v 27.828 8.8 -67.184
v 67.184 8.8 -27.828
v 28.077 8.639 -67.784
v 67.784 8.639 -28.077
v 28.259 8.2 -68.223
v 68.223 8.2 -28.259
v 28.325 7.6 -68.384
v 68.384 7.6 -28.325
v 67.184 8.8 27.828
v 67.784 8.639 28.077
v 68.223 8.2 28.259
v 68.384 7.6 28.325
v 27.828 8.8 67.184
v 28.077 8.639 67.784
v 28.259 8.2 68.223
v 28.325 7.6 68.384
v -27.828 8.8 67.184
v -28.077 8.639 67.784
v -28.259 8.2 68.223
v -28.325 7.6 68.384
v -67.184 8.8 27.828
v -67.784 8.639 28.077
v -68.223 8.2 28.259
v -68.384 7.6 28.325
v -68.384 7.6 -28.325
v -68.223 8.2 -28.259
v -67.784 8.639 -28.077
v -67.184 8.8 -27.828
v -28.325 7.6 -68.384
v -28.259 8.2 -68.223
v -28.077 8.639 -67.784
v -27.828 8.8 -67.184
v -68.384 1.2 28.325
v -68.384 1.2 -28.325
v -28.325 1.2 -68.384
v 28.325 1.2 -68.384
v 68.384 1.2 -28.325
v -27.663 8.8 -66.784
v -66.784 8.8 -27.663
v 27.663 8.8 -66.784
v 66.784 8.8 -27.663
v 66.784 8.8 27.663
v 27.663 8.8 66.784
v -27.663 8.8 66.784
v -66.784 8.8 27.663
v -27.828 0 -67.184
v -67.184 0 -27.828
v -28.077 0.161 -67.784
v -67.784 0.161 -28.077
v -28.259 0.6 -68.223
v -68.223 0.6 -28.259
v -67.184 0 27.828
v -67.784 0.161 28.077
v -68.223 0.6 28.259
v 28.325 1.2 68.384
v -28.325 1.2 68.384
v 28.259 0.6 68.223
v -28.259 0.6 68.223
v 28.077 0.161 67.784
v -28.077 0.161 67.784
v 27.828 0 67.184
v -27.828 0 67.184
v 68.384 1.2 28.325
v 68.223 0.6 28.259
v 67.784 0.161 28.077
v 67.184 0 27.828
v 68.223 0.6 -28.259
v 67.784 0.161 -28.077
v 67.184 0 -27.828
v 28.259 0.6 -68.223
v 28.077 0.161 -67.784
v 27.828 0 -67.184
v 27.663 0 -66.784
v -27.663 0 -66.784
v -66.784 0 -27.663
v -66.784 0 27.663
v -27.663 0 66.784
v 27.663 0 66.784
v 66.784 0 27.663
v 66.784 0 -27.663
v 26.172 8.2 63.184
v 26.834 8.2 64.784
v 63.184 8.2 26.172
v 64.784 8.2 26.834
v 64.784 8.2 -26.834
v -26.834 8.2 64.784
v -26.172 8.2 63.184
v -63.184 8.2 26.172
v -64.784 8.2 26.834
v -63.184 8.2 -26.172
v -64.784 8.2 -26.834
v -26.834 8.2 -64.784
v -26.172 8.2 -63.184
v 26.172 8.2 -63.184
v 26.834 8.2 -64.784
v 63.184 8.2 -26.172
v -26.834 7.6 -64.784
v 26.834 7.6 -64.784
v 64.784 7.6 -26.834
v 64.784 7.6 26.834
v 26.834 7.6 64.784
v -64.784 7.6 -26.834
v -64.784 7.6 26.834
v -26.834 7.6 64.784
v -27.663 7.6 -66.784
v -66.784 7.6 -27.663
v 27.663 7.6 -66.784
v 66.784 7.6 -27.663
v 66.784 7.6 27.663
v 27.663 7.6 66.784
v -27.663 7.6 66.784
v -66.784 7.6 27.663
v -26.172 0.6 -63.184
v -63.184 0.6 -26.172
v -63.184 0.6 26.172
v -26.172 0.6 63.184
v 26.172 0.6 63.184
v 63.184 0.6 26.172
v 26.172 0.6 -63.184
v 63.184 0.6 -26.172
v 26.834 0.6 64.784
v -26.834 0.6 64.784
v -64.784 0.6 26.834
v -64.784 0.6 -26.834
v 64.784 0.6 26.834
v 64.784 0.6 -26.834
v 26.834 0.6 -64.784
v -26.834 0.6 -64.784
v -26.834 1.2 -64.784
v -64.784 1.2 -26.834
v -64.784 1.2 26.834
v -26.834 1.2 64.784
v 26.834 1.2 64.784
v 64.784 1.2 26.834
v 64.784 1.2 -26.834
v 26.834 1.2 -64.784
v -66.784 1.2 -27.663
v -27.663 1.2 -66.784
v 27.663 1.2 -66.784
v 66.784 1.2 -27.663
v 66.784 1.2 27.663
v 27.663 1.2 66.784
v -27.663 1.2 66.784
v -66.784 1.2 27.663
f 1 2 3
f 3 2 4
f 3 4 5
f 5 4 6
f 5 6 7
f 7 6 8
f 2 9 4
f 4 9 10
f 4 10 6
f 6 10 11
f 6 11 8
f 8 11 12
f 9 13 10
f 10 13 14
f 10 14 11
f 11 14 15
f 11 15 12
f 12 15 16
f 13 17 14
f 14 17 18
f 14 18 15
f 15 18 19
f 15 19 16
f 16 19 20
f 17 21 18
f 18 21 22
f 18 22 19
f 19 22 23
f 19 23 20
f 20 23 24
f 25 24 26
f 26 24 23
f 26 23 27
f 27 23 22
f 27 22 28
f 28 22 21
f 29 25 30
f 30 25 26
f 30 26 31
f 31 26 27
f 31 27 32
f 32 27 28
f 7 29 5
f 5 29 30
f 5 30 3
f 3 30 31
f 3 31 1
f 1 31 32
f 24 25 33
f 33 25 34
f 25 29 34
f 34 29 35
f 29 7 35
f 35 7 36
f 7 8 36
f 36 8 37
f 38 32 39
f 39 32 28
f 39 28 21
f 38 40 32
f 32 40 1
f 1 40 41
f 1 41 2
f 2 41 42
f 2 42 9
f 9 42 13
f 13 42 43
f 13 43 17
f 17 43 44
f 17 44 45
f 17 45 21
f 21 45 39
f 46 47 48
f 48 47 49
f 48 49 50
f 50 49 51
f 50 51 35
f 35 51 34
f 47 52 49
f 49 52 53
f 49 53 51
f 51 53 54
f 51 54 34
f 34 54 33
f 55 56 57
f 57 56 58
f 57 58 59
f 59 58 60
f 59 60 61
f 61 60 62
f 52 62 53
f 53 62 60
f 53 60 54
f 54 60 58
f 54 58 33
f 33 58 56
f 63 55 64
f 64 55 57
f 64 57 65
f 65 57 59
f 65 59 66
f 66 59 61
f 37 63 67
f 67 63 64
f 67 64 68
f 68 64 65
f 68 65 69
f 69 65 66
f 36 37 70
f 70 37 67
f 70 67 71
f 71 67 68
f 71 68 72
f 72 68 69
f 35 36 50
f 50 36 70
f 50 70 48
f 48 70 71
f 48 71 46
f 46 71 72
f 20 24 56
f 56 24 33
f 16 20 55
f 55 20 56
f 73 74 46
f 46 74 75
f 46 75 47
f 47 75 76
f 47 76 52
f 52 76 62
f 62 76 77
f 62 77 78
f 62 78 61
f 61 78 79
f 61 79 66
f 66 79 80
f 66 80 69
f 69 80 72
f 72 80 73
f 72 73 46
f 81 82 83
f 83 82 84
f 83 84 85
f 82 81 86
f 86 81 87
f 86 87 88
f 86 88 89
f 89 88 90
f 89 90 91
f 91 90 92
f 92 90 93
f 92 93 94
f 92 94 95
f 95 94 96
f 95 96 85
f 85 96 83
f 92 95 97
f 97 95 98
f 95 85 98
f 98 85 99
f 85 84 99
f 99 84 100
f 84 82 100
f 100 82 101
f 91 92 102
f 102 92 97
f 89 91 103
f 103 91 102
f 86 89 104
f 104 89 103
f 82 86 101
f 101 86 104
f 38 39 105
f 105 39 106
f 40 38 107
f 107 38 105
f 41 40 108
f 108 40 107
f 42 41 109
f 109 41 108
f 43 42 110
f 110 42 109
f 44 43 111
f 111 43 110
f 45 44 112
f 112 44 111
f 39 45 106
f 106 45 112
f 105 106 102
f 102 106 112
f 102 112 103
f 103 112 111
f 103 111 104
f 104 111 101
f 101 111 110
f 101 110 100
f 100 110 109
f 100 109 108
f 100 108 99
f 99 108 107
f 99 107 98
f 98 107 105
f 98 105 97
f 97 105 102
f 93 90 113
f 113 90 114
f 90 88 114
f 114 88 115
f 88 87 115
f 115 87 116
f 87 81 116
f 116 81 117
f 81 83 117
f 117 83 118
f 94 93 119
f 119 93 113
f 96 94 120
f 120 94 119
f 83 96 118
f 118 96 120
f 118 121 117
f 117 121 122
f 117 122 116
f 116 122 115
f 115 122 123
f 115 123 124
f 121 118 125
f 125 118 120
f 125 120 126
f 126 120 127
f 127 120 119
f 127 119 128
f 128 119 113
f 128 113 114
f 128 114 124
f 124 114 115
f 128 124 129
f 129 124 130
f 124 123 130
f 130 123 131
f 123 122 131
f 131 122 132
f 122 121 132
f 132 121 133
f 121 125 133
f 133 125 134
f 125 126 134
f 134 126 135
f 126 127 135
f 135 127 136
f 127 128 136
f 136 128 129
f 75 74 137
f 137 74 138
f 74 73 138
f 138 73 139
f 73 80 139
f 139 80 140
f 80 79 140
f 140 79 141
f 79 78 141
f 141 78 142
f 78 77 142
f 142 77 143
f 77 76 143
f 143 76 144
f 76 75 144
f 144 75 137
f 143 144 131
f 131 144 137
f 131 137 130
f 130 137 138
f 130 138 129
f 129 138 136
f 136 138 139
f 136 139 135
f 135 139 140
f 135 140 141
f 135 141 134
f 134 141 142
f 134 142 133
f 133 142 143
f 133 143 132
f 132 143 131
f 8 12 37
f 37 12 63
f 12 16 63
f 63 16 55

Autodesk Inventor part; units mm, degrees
ref_plane "YZ Plane" through (0, 0, 0) normal (1, 0, 0) x (0, 1, 0)
ref_plane "XZ Plane" through (0, 0, 0) normal (0, 1, 0) x (-1, 0, 0)
sketch "스케치1" plane through (0, 0, 0) normal (0, 1, 0) x (-1, 0, 0)
  line L0 (-65.1838, 27) -> (-27, 65.1838)
  line L1 (-27, 65.1838) -> (27, 65.1838)
  line L2 (27, 65.1838) -> (65.1838, 27)
  line L3 (65.1838, 27) -> (65.1838, -27)
  line L4 (65.1838, -27) -> (27, -65.1838)
  line L5 (27, -65.1838) -> (-27, -65.1838)
  line L6 (-27, -65.1838) -> (-65.1838, -27)
  line L7 (-65.1838, -27) -> (-65.1838, 27)
  line L8 (68.3838, 28.3255) -> (68.3838, -28.3255)
  line L9 (68.3838, -28.3255) -> (28.3255, -68.3838)
  line L10 (28.3255, -68.3838) -> (-28.3255, -68.3838)
  line L11 (-28.3255, -68.3838) -> (-68.3838, -28.3255)
  line L12 (-68.3838, -28.3255) -> (-68.3838, 28.3255)
  line L13 (-68.3838, 28.3255) -> (-28.3255, 68.3838)
  line L14 (-28.3255, 68.3838) -> (28.3255, 68.3838)
  line L15 (28.3255, 68.3838) -> (68.3838, 28.3255)
  point P0 (0, 0)
  point P1 (0, 0)
  point P2 (0, 0)
  dimension "d0" = 54
  dimension "d1" = 3.2
extrude "돌출1" add sketch "스케치1" along normal blind 8.8 contours L0 L1 L2 L3 L4 L5 L6 L7 | L8 L9 L10 L11 L12 L13 L14 L15
sketch "스케치3" plane through (0, 0, 0) normal (0, -1, 0) x (1, 0, 0)
  line L0 (-26.8343, 64.7838) -> (26.8343, 64.7838)
  line L1 (26.8343, 64.7838) -> (64.7838, 26.8343)
  line L2 (64.7838, 26.8343) -> (64.7838, -26.8343)
  line L3 (64.7838, -26.8343) -> (26.8343, -64.7838)
  line L4 (26.8343, -64.7838) -> (-26.8343, -64.7838)
  line L5 (-26.8343, -64.7838) -> (-64.7838, -26.8343)
  line L6 (-64.7838, -26.8343) -> (-64.7838, 26.8343)
  line L7 (-64.7838, 26.8343) -> (-26.8343, 64.7838)
  line L8 (-27.6627, 66.7838) -> (27.6627, 66.7838)
  line L9 (27.6627, 66.7838) -> (66.7838, 27.6627)
  line L10 (66.7838, 27.6627) -> (66.7838, -27.6627)
  line L11 (66.7838, -27.6627) -> (27.6627, -66.7838)
  line L12 (27.6627, -66.7838) -> (-27.6627, -66.7838)
  line L13 (-27.6627, -66.7838) -> (-66.7838, -27.6627)
  line L14 (-66.7838, -27.6627) -> (-66.7838, 27.6627)
  line L15 (-66.7838, 27.6627) -> (-27.6627, 66.7838)
  line L16 (-28.3255, 68.3838) -> (28.3255, 68.3838) projected
  point P0 (0, 0)
  point P1 (0, 0)
  point P2 (0, 0)
  point P3 (0, 0)
  dimension "d9" = 2
  dimension "d144" = 1.6
extrude "돌출3" cut sketch "스케치3" against normal blind 1.2
sketch "스케치14" plane through (0, 0, 0) normal (0, -1, 0) x (1, 0, 0)
  line L0 (64.7838, 26.8343) -> (26.8343, 64.7838) projected
  line L1 (26.8343, 64.7838) -> (-26.8343, 64.7838) projected
  line L2 (-26.8343, 64.7838) -> (-64.7838, 26.8343) projected
  line L3 (-64.7838, 26.8343) -> (-64.7838, -26.8343) projected
  line L4 (-64.7838, -26.8343) -> (-26.8343, -64.7838) projected
  line L5 (-26.8343, -64.7838) -> (26.8343, -64.7838) projected
  line L6 (26.8343, -64.7838) -> (64.7838, -26.8343) projected
  line L7 (64.7838, -26.8343) -> (64.7838, 26.8343) projected
  point P0 (0, 0)
extrude "돌출16" cut sketch "스케치14" against normal blind 0.6
sketch "스케치15" plane through (0, 0.6, 0) normal (0, -1, 0) x (1, 0, 0)
  line L0 (-26.1716, 63.1838) -> (26.1716, 63.1838)
  line L1 (26.1716, 63.1838) -> (63.1838, 26.1716)
  line L2 (63.1838, 26.1716) -> (63.1838, -26.1716)
  line L3 (63.1838, -26.1716) -> (26.1716, -63.1838)
  line L4 (26.1716, -63.1838) -> (-26.1716, -63.1838)
  line L5 (-26.1716, -63.1838) -> (-63.1838, -26.1716)
  line L6 (-63.1838, -26.1716) -> (-63.1838, 26.1716)
  line L7 (-63.1838, 26.1716) -> (-26.1716, 63.1838)
  line L8 (-26.8343, 64.7838) -> (26.8343, 64.7838) projected
  point P0 (0, 0)
  point P1 (0, 0)
  dimension "d140" = 1.6
extrude "돌출17" cut sketch "스케치15" against normal up to surface (8.2 mm away)
ref_plane "작업 평면3" through (0, 4.4, 0) normal (0, -1, 0) x (1, 0, 0)
mirror "미러6" about plane through (0, 4.4, 0) normal (0, -1, 0) of "돌출3", "돌출16"
fillet "모깎기2" radius 1.2 16 edges at (0, 0, 68.3838) (-48.3546, 0, 48.3546) (-68.3838, 0, 0) (-48.3546, 0, -48.3546) (0, 0, -68.3838) (48.3546, 0, -48.3546) (68.3838, 0, 0) (48.3546, 0, 48.3546) (-48.3546, 8.8, 48.3546) (-68.3838, 8.8, 0) (-48.3546, 8.8, -48.3546) (0, 8.8, -68.3838) (48.3546, 8.8, -48.3546) (68.3838, 8.8, 0) (48.3546, 8.8, 48.3546) (0, 8.8, 68.3838)
properties part number "OV-PAM_ring_2"
